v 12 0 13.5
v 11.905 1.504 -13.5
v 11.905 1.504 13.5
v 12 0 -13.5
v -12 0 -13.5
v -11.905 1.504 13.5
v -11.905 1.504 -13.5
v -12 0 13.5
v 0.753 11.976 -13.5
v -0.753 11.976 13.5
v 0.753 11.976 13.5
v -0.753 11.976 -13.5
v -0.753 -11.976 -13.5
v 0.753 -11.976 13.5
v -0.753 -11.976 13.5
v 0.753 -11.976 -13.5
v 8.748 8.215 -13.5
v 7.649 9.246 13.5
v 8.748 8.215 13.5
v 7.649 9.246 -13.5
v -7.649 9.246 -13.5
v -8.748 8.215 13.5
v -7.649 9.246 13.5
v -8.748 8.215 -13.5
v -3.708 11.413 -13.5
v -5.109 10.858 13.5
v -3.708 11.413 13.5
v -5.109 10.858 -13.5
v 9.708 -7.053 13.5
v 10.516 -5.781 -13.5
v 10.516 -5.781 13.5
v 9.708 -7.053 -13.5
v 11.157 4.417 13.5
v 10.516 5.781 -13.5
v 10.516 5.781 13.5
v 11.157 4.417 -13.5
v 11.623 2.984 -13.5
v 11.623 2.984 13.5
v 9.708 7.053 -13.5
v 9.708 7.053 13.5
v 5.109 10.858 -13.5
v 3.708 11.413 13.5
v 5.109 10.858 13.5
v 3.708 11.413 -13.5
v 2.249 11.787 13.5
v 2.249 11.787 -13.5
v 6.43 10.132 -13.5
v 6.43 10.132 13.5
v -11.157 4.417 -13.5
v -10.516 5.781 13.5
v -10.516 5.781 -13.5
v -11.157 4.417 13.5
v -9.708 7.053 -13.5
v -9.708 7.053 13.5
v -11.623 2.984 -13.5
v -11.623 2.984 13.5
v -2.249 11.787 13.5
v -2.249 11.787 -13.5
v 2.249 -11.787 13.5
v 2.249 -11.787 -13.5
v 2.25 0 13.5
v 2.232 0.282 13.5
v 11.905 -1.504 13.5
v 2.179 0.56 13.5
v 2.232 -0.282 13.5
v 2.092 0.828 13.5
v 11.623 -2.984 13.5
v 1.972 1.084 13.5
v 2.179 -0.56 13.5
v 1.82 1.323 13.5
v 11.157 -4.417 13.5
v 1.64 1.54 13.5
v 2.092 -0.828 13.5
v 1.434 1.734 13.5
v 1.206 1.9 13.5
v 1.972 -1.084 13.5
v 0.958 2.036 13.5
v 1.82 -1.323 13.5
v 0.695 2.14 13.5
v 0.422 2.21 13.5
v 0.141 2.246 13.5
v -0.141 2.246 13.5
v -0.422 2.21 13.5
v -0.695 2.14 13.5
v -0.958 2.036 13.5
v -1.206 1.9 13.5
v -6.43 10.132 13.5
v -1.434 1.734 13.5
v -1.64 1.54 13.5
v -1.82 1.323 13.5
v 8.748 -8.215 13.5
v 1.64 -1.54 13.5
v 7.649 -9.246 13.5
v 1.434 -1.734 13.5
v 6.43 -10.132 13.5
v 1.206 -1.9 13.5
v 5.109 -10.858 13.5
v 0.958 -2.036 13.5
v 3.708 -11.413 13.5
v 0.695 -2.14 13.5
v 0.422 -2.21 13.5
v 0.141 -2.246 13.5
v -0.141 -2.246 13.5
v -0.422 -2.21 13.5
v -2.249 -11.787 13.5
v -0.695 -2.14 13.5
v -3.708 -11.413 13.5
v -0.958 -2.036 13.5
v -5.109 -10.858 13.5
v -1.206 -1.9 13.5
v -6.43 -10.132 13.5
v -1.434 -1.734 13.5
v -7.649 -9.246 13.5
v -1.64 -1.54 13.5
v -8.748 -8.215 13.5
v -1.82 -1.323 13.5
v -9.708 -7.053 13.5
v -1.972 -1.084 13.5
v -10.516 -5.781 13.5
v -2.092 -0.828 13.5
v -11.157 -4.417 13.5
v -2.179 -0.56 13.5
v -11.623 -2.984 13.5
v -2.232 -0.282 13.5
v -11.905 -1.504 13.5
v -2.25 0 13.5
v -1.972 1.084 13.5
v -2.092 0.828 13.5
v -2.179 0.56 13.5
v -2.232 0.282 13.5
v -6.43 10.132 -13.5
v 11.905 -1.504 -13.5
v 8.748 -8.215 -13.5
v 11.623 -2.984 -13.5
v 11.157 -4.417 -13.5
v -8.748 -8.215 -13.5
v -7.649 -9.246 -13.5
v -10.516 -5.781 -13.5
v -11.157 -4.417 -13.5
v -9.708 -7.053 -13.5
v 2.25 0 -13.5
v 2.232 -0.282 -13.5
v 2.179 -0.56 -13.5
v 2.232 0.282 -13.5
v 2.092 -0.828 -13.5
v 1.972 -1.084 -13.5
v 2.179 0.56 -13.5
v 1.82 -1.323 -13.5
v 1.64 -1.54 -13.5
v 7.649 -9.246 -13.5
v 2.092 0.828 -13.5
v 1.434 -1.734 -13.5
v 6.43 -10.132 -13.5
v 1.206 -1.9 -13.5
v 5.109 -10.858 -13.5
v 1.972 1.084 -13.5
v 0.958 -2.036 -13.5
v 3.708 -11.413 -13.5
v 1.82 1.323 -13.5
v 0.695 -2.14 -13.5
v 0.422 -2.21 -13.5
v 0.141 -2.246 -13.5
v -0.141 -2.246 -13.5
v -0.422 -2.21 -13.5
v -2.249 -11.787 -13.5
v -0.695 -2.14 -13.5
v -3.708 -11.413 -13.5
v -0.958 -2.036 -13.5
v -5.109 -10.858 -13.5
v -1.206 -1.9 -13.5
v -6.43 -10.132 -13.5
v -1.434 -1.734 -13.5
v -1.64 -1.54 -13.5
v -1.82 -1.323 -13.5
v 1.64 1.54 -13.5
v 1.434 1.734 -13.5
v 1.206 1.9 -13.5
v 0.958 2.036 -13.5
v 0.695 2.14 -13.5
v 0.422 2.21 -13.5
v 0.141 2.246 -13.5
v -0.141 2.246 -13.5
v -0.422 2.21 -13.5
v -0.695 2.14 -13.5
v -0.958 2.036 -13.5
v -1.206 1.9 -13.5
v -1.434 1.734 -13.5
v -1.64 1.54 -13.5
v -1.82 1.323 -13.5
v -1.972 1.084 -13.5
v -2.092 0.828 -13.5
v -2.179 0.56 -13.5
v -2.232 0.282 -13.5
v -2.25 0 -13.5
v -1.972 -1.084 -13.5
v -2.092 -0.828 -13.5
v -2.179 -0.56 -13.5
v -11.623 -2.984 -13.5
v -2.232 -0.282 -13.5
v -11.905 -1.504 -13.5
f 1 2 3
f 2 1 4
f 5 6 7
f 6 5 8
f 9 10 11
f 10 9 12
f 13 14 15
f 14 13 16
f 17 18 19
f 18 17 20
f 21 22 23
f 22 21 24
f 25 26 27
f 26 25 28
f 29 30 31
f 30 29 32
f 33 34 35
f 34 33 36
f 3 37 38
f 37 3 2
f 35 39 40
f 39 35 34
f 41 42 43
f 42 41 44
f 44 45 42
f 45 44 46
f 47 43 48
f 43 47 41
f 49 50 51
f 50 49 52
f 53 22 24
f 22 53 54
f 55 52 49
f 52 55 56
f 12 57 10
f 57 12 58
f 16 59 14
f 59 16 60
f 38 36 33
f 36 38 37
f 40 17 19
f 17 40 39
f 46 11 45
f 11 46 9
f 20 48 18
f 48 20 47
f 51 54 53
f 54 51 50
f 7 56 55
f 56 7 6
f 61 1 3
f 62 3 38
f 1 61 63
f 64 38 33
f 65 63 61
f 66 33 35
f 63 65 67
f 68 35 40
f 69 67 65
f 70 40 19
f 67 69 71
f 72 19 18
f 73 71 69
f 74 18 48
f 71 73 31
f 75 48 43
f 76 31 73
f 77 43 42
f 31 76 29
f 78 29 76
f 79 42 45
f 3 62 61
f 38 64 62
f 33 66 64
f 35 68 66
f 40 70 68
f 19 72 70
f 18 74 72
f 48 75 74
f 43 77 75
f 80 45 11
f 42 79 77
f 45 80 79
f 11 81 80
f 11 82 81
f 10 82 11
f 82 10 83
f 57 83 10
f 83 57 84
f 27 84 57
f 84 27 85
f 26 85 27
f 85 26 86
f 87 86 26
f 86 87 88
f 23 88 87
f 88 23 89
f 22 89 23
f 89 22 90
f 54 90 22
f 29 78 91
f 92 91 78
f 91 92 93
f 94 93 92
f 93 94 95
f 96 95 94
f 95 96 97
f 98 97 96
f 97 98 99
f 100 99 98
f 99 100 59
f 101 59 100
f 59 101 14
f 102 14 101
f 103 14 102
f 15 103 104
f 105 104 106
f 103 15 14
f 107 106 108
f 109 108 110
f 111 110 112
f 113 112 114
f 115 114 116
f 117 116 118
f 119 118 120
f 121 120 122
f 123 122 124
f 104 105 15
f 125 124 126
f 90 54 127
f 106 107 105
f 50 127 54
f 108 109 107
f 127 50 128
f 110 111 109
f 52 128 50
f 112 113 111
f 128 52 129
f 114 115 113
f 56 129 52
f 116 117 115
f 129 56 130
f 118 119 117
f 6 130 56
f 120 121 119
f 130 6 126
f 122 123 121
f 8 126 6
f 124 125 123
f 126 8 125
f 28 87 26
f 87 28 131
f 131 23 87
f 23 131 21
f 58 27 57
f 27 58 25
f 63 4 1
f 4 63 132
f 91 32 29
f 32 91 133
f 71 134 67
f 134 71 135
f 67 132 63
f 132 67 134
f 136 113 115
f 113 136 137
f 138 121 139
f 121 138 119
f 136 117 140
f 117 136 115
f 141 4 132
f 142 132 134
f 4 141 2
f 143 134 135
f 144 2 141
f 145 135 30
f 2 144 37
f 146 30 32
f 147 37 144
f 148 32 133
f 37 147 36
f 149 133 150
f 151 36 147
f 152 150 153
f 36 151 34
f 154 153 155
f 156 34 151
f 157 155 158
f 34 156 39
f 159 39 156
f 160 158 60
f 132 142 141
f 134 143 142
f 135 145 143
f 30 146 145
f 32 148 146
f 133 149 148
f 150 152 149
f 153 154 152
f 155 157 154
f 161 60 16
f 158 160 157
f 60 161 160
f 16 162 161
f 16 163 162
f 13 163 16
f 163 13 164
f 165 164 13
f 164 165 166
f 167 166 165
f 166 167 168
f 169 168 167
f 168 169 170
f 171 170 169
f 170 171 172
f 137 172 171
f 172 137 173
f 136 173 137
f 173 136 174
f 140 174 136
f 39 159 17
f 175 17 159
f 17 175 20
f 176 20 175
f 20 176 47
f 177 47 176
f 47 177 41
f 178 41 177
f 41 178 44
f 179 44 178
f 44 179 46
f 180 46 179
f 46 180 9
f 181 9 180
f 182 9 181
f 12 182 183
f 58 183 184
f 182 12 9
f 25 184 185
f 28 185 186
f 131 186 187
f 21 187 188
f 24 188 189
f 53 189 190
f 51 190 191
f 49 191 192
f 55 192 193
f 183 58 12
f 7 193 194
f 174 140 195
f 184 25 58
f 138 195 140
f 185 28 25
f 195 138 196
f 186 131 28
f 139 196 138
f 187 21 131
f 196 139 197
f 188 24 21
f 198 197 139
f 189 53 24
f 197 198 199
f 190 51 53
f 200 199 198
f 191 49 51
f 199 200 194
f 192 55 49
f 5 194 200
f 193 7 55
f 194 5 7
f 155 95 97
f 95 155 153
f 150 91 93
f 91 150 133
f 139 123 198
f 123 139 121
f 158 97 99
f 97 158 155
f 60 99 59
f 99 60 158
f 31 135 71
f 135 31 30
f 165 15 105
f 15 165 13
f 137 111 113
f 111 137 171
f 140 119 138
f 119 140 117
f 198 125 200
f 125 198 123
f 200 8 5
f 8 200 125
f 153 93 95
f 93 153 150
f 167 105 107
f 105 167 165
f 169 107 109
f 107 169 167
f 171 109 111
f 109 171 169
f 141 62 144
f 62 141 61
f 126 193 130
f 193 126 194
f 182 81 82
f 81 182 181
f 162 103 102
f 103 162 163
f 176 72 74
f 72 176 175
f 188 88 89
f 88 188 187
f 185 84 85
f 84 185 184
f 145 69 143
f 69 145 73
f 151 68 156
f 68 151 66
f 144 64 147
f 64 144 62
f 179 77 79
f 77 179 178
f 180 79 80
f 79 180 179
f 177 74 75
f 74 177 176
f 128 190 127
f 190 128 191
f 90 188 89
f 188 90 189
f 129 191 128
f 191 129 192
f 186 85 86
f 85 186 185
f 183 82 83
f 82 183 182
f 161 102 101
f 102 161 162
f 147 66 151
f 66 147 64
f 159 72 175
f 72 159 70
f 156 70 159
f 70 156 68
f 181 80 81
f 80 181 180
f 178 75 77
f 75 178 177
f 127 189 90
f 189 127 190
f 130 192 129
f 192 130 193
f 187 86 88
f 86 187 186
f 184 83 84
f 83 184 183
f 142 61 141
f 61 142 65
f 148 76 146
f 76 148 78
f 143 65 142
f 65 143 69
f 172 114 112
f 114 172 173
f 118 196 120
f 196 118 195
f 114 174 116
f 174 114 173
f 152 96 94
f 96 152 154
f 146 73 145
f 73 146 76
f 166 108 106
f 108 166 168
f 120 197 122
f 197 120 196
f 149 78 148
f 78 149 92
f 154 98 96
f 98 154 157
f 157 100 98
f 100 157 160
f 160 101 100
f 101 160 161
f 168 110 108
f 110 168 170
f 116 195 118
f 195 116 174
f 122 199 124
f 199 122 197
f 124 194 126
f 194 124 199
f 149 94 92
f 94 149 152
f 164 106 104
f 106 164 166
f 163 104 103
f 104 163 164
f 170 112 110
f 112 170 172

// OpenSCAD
$fn = 50;


difference() {
	union() {
		translate(v = [0, 0, -13.5000000000]) {
			cylinder(h = 27, r = 12.0000000000);
		}
	}
	union() {
		translate(v = [0, 0, -100.0000000000]) {
			cylinder(h = 200, r = 2.2500000000);
		}
	}
}
